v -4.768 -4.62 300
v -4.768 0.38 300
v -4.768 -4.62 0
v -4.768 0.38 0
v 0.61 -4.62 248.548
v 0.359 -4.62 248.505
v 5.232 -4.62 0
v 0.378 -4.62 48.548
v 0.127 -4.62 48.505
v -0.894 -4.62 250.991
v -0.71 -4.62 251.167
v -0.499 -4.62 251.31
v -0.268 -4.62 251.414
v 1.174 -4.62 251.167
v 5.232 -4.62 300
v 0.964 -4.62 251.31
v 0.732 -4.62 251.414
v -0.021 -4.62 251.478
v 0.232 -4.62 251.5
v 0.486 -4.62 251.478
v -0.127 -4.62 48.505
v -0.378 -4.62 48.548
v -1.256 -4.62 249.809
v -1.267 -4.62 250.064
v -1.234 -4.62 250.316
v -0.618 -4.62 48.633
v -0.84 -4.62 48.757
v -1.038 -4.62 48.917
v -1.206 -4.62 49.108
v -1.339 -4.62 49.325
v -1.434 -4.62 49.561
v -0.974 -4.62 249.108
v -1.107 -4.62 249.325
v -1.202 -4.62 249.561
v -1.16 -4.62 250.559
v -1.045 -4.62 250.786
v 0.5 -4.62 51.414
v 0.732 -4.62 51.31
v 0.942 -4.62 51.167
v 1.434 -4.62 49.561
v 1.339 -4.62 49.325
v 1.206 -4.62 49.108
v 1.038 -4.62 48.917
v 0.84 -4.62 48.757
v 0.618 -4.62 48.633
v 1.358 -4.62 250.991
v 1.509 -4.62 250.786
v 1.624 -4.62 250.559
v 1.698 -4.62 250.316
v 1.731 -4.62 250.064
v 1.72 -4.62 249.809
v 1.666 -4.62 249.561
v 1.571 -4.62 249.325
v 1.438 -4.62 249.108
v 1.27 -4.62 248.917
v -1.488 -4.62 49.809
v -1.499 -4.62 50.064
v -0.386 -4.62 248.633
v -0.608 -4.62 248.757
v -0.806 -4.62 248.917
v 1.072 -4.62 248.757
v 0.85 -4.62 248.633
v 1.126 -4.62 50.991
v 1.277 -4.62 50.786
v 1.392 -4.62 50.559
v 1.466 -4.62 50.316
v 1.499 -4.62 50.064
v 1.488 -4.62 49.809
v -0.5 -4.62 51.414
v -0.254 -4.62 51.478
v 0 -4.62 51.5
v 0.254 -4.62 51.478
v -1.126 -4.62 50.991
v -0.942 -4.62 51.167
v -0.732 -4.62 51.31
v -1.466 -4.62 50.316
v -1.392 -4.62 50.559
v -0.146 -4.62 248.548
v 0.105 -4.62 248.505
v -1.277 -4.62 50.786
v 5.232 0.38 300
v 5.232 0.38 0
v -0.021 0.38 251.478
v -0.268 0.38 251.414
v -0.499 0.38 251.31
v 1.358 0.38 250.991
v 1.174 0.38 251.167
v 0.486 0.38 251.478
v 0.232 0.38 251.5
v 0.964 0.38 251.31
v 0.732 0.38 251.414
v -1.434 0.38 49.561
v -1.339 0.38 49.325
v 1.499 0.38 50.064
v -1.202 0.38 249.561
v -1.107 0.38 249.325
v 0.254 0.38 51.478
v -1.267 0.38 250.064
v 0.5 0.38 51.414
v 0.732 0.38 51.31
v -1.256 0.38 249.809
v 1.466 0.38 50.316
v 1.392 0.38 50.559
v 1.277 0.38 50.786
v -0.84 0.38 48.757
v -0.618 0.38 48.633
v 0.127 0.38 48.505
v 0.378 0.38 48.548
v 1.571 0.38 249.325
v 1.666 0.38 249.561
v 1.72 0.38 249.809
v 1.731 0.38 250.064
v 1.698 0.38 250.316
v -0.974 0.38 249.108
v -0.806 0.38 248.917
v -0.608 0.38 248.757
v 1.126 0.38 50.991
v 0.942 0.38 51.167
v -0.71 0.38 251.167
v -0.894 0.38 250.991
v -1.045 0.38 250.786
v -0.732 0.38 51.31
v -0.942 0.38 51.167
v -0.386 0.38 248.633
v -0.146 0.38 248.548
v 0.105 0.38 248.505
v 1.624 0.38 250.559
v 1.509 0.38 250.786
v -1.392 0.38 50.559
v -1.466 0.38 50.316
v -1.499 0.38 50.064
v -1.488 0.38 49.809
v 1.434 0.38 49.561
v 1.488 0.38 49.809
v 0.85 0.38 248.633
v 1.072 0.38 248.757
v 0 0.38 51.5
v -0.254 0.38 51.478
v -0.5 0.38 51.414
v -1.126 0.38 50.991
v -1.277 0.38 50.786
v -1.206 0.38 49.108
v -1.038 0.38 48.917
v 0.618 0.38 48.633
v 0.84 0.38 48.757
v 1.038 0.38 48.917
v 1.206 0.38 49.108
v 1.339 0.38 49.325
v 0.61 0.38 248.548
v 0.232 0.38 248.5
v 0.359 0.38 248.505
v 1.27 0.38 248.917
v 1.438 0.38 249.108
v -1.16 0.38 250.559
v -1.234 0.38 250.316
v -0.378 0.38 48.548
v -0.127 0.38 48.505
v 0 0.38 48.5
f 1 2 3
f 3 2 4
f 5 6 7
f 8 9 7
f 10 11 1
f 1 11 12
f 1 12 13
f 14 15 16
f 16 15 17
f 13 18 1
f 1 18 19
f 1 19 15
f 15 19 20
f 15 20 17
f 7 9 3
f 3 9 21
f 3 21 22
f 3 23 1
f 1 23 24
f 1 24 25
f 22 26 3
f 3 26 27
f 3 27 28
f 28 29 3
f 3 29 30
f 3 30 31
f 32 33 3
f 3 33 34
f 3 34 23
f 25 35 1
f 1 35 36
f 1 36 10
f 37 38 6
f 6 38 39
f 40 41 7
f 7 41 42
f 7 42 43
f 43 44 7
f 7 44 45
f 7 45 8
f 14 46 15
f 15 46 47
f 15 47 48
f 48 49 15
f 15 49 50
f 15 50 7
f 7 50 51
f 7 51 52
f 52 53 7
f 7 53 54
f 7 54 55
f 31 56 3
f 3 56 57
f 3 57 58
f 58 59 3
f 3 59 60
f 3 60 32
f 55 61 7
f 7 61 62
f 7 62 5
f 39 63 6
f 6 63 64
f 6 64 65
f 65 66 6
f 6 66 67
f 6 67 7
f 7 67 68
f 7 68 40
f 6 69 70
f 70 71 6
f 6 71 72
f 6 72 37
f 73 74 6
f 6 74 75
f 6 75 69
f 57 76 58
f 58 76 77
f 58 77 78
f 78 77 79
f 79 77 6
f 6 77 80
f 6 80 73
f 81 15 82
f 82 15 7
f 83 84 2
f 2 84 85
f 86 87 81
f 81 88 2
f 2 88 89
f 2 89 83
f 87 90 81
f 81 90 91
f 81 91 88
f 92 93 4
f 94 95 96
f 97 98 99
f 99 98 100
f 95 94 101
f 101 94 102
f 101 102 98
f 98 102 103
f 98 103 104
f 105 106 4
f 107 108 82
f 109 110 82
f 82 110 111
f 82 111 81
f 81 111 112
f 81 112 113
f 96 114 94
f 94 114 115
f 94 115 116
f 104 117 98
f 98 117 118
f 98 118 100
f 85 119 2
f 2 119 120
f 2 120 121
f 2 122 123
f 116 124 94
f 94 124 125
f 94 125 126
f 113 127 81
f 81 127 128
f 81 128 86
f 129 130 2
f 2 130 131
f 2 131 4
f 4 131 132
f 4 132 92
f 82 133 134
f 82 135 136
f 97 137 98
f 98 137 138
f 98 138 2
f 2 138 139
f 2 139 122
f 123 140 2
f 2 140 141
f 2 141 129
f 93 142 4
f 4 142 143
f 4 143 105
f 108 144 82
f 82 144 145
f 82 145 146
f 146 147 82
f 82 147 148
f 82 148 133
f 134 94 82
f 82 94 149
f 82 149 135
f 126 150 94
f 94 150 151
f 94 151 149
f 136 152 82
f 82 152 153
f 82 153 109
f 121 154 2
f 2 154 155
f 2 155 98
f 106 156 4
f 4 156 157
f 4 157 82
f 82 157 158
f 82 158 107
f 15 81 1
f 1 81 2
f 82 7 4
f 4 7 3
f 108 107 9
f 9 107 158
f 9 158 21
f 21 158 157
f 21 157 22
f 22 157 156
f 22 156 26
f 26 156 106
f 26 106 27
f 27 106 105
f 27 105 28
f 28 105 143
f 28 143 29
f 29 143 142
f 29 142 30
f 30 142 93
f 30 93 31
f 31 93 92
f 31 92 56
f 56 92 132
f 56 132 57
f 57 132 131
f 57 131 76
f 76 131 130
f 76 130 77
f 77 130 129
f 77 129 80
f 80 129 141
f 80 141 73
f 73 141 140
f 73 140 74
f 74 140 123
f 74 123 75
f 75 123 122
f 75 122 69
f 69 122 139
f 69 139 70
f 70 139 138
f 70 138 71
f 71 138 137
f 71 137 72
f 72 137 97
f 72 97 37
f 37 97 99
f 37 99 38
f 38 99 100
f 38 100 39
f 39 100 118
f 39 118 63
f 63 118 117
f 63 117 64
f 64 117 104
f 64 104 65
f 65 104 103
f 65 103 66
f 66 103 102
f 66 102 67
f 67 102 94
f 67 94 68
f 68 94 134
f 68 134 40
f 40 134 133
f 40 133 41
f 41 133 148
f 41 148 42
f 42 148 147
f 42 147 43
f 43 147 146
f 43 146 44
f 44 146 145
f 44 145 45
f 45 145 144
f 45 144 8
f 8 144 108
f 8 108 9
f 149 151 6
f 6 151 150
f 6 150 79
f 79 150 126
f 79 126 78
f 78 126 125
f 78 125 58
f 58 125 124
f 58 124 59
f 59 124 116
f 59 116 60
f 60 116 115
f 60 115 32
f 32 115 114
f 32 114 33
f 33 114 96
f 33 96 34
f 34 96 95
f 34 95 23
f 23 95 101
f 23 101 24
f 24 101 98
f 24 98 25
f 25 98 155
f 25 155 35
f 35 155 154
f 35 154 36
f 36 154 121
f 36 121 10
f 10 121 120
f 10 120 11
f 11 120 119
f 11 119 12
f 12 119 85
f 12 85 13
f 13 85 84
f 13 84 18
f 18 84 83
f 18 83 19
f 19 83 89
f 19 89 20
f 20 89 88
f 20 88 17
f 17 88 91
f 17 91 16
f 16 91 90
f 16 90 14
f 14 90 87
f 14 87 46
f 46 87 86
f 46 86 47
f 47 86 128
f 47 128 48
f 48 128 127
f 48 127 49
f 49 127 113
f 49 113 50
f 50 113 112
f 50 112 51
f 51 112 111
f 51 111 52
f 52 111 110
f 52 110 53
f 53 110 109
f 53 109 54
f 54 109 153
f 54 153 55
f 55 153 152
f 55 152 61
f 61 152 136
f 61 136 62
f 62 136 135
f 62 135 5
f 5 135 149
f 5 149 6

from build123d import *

# Parameters (mm, degrees)
SKETCH1_W               = 10
SKETCH1_H               = 5
BOSS_EXTRUDE1_DEPTH     = 300
CUT_EXTRUDE1_DEPTH      = 301.087278188
CUT_EXTRUDE1_DEPTH_BACK = 301.087278188
SKETCH2_R               = 1.5


with BuildPart() as part:
    # Sketch1 → Boss-Extrude1 (new body)
    with BuildSketch(Plane.XY):
        with Locations((0.232067511, -2.120253165)):
            Rectangle(SKETCH1_W, SKETCH1_H)
    extrude(amount=BOSS_EXTRUDE1_DEPTH)

    # Sketch2 → Cut-Extrude1 (cut, two sides: drawn at the far end of the back side and taken through both)
    with BuildSketch(Plane(origin=(0, 0.379746835, 0), x_dir=(1, 0, 0), z_dir=(0, 1, 0)).offset(-CUT_EXTRUDE1_DEPTH_BACK)):
        with Locations(Location((0.232067511, -250, 0), (0, 0, 270))):
            Circle(SKETCH2_R)
        with Locations(Location((0, -50, 0), (0, 0, 270))):
            Circle(SKETCH2_R)
    extrude(amount=CUT_EXTRUDE1_DEPTH + CUT_EXTRUDE1_DEPTH_BACK, mode=Mode.SUBTRACT)


solid = part.part
